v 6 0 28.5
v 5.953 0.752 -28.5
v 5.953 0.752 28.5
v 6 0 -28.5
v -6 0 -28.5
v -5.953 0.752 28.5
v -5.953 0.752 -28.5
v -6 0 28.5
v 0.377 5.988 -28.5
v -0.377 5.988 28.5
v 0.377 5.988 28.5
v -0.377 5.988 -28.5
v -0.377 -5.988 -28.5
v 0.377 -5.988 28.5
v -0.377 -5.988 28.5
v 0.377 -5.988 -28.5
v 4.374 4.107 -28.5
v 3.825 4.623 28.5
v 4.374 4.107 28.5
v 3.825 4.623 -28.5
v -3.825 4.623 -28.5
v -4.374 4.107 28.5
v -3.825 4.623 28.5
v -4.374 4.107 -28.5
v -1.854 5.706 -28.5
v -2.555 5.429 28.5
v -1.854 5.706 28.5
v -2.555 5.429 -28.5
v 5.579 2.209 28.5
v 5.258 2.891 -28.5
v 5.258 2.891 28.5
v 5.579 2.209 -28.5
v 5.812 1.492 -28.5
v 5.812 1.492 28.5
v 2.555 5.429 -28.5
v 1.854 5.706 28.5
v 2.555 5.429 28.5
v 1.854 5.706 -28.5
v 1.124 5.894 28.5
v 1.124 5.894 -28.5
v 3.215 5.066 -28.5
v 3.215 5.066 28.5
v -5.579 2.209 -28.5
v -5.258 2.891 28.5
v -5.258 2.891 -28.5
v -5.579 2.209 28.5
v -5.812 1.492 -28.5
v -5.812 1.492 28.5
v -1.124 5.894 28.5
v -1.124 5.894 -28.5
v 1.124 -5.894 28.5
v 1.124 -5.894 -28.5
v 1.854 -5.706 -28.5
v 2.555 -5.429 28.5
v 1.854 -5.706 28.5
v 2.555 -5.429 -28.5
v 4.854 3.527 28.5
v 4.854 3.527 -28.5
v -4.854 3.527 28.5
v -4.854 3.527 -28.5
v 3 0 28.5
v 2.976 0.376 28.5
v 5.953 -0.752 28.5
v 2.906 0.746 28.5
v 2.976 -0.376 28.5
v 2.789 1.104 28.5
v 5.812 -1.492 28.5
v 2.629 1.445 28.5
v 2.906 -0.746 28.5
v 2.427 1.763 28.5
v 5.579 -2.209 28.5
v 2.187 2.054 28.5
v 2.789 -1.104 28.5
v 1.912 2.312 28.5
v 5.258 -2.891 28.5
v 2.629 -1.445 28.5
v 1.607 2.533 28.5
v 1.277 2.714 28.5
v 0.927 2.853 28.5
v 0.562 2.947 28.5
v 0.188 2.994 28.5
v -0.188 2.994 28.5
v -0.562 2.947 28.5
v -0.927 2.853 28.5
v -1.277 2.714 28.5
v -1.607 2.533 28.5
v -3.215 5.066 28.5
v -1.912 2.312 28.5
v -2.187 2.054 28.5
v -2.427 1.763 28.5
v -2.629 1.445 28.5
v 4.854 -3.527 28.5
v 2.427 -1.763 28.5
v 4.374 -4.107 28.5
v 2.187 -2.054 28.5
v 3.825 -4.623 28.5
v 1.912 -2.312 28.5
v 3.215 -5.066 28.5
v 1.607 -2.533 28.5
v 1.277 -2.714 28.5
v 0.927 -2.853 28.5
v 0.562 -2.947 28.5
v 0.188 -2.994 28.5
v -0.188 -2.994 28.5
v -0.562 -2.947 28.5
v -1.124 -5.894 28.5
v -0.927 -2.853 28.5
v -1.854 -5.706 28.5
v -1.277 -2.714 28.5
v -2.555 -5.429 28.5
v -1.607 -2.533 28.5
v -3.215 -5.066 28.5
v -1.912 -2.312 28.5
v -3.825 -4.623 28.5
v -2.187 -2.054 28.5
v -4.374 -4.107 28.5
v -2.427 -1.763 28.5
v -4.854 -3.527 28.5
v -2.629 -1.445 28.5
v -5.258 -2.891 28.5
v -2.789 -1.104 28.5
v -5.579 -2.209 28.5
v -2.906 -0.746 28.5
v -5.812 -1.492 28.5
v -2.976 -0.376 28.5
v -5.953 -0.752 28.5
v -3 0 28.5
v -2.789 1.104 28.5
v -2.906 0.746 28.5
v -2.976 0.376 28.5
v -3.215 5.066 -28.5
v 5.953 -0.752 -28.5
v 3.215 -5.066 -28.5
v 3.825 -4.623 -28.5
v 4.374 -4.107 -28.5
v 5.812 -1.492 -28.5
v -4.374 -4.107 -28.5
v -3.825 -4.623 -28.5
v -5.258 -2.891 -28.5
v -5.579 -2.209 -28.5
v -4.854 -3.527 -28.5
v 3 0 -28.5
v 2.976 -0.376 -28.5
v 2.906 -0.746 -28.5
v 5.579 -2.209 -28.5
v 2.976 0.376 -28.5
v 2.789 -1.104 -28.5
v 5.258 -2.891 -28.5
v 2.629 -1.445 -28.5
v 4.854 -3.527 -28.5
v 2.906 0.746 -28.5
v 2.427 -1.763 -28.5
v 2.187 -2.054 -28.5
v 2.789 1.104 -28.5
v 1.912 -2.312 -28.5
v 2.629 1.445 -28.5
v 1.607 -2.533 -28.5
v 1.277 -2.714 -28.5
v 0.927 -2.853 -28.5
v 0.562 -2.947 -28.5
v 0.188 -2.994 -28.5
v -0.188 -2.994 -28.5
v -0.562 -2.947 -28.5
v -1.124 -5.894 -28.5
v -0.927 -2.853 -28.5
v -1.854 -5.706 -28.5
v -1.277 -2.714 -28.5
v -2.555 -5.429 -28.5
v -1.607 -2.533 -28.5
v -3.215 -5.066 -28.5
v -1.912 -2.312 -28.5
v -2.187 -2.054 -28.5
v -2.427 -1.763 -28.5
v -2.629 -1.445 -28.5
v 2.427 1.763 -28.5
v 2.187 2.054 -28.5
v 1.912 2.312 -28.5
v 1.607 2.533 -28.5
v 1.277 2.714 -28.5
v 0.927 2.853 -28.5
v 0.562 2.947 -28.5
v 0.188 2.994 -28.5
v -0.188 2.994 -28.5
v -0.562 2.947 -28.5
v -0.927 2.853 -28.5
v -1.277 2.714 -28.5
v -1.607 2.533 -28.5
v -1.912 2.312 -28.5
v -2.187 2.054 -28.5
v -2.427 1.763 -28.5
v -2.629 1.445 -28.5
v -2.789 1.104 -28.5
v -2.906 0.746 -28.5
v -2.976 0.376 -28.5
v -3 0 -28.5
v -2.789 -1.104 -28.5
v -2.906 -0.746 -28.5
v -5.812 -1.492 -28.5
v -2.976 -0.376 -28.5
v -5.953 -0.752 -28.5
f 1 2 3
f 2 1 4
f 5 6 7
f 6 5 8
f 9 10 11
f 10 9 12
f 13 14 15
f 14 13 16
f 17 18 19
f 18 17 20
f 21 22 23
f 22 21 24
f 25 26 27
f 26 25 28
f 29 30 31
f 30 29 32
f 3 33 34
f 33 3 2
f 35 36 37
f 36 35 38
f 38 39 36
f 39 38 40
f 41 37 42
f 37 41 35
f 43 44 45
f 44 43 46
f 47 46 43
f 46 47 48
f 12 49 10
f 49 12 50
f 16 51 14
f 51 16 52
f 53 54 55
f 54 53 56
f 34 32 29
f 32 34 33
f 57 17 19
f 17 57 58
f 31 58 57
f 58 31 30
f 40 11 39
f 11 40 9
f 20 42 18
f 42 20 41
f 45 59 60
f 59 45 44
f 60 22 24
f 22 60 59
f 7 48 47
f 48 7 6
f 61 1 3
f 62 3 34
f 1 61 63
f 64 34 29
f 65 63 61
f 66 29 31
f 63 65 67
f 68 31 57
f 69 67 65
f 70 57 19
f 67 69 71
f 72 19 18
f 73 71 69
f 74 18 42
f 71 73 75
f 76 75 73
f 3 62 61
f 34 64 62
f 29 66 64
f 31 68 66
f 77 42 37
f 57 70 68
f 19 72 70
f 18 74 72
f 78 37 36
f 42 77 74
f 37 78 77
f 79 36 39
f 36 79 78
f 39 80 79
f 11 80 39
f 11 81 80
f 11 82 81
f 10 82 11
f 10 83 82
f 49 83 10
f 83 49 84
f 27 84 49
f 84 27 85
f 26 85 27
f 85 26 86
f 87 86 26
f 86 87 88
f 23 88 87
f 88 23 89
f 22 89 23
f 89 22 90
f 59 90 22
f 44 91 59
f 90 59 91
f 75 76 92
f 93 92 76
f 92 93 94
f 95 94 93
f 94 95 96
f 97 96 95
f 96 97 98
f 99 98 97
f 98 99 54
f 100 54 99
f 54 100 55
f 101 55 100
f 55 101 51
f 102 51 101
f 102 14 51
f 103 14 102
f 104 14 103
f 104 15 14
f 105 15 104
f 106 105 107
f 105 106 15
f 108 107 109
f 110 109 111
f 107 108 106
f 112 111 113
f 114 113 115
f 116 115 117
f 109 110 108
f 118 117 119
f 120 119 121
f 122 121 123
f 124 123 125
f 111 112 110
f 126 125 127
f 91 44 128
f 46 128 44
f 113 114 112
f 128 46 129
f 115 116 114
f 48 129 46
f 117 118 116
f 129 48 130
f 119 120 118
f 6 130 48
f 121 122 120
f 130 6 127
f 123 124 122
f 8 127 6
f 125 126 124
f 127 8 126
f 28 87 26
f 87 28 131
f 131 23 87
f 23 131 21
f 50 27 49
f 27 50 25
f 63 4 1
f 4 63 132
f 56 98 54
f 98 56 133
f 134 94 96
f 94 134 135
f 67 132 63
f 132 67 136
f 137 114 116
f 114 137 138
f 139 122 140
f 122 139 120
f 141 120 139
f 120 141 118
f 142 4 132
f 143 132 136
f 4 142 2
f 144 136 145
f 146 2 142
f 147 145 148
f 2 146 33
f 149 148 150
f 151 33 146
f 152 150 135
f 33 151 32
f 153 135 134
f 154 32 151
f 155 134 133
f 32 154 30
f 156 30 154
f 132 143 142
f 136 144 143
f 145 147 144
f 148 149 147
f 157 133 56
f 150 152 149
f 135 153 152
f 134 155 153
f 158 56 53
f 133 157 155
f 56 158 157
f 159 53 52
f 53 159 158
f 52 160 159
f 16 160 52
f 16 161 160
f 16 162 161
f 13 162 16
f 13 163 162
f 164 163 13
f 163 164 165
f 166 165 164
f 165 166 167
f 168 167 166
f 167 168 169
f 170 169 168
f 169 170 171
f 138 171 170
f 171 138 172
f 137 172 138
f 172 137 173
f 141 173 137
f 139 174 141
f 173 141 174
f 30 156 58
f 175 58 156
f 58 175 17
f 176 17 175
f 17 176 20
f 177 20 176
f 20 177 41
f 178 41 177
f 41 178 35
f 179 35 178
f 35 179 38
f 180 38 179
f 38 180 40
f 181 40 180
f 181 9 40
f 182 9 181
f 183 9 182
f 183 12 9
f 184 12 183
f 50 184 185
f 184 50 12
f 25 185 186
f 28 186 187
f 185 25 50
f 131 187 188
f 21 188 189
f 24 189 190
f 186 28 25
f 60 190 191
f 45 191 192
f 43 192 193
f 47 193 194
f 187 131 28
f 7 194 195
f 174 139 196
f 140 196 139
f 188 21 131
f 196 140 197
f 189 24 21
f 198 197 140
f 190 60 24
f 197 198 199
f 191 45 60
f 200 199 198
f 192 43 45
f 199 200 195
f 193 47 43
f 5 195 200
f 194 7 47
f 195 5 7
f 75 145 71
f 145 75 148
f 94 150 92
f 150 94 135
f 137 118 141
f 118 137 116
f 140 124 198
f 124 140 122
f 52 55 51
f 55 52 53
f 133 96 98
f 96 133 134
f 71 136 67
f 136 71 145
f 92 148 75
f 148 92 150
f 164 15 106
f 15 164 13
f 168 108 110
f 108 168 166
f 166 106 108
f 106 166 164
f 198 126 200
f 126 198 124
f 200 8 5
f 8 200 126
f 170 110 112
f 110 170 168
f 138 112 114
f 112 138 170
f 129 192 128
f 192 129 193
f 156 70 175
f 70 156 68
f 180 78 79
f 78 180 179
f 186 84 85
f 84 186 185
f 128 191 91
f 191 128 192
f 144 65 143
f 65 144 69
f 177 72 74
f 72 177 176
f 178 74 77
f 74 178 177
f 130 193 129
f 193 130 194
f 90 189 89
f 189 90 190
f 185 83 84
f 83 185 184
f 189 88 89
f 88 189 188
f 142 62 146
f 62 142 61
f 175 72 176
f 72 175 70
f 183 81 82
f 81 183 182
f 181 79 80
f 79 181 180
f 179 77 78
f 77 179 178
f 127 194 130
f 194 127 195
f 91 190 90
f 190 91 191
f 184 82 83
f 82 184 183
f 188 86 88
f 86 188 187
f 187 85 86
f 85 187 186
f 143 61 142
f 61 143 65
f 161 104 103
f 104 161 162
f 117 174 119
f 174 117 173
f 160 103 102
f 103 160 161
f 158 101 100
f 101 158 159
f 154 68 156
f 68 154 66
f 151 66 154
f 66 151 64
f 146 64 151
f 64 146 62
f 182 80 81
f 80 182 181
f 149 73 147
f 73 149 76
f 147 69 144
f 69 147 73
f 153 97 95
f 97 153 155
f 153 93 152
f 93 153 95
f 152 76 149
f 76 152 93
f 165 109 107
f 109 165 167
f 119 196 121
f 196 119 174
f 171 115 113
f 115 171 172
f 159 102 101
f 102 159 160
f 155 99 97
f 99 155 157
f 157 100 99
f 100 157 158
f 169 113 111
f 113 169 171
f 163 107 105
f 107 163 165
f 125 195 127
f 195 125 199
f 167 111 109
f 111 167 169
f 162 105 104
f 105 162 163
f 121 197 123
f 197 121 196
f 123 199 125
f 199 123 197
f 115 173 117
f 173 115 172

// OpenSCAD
$fn = 50;


difference() {
	union() {
		translate(v = [0, 0, -28.5000000000]) {
			cylinder(h = 57, r = 6.0000000000);
		}
	}
	union() {
		translate(v = [0, 0, -100.0000000000]) {
			cylinder(h = 200, r = 3);
		}
	}
}
